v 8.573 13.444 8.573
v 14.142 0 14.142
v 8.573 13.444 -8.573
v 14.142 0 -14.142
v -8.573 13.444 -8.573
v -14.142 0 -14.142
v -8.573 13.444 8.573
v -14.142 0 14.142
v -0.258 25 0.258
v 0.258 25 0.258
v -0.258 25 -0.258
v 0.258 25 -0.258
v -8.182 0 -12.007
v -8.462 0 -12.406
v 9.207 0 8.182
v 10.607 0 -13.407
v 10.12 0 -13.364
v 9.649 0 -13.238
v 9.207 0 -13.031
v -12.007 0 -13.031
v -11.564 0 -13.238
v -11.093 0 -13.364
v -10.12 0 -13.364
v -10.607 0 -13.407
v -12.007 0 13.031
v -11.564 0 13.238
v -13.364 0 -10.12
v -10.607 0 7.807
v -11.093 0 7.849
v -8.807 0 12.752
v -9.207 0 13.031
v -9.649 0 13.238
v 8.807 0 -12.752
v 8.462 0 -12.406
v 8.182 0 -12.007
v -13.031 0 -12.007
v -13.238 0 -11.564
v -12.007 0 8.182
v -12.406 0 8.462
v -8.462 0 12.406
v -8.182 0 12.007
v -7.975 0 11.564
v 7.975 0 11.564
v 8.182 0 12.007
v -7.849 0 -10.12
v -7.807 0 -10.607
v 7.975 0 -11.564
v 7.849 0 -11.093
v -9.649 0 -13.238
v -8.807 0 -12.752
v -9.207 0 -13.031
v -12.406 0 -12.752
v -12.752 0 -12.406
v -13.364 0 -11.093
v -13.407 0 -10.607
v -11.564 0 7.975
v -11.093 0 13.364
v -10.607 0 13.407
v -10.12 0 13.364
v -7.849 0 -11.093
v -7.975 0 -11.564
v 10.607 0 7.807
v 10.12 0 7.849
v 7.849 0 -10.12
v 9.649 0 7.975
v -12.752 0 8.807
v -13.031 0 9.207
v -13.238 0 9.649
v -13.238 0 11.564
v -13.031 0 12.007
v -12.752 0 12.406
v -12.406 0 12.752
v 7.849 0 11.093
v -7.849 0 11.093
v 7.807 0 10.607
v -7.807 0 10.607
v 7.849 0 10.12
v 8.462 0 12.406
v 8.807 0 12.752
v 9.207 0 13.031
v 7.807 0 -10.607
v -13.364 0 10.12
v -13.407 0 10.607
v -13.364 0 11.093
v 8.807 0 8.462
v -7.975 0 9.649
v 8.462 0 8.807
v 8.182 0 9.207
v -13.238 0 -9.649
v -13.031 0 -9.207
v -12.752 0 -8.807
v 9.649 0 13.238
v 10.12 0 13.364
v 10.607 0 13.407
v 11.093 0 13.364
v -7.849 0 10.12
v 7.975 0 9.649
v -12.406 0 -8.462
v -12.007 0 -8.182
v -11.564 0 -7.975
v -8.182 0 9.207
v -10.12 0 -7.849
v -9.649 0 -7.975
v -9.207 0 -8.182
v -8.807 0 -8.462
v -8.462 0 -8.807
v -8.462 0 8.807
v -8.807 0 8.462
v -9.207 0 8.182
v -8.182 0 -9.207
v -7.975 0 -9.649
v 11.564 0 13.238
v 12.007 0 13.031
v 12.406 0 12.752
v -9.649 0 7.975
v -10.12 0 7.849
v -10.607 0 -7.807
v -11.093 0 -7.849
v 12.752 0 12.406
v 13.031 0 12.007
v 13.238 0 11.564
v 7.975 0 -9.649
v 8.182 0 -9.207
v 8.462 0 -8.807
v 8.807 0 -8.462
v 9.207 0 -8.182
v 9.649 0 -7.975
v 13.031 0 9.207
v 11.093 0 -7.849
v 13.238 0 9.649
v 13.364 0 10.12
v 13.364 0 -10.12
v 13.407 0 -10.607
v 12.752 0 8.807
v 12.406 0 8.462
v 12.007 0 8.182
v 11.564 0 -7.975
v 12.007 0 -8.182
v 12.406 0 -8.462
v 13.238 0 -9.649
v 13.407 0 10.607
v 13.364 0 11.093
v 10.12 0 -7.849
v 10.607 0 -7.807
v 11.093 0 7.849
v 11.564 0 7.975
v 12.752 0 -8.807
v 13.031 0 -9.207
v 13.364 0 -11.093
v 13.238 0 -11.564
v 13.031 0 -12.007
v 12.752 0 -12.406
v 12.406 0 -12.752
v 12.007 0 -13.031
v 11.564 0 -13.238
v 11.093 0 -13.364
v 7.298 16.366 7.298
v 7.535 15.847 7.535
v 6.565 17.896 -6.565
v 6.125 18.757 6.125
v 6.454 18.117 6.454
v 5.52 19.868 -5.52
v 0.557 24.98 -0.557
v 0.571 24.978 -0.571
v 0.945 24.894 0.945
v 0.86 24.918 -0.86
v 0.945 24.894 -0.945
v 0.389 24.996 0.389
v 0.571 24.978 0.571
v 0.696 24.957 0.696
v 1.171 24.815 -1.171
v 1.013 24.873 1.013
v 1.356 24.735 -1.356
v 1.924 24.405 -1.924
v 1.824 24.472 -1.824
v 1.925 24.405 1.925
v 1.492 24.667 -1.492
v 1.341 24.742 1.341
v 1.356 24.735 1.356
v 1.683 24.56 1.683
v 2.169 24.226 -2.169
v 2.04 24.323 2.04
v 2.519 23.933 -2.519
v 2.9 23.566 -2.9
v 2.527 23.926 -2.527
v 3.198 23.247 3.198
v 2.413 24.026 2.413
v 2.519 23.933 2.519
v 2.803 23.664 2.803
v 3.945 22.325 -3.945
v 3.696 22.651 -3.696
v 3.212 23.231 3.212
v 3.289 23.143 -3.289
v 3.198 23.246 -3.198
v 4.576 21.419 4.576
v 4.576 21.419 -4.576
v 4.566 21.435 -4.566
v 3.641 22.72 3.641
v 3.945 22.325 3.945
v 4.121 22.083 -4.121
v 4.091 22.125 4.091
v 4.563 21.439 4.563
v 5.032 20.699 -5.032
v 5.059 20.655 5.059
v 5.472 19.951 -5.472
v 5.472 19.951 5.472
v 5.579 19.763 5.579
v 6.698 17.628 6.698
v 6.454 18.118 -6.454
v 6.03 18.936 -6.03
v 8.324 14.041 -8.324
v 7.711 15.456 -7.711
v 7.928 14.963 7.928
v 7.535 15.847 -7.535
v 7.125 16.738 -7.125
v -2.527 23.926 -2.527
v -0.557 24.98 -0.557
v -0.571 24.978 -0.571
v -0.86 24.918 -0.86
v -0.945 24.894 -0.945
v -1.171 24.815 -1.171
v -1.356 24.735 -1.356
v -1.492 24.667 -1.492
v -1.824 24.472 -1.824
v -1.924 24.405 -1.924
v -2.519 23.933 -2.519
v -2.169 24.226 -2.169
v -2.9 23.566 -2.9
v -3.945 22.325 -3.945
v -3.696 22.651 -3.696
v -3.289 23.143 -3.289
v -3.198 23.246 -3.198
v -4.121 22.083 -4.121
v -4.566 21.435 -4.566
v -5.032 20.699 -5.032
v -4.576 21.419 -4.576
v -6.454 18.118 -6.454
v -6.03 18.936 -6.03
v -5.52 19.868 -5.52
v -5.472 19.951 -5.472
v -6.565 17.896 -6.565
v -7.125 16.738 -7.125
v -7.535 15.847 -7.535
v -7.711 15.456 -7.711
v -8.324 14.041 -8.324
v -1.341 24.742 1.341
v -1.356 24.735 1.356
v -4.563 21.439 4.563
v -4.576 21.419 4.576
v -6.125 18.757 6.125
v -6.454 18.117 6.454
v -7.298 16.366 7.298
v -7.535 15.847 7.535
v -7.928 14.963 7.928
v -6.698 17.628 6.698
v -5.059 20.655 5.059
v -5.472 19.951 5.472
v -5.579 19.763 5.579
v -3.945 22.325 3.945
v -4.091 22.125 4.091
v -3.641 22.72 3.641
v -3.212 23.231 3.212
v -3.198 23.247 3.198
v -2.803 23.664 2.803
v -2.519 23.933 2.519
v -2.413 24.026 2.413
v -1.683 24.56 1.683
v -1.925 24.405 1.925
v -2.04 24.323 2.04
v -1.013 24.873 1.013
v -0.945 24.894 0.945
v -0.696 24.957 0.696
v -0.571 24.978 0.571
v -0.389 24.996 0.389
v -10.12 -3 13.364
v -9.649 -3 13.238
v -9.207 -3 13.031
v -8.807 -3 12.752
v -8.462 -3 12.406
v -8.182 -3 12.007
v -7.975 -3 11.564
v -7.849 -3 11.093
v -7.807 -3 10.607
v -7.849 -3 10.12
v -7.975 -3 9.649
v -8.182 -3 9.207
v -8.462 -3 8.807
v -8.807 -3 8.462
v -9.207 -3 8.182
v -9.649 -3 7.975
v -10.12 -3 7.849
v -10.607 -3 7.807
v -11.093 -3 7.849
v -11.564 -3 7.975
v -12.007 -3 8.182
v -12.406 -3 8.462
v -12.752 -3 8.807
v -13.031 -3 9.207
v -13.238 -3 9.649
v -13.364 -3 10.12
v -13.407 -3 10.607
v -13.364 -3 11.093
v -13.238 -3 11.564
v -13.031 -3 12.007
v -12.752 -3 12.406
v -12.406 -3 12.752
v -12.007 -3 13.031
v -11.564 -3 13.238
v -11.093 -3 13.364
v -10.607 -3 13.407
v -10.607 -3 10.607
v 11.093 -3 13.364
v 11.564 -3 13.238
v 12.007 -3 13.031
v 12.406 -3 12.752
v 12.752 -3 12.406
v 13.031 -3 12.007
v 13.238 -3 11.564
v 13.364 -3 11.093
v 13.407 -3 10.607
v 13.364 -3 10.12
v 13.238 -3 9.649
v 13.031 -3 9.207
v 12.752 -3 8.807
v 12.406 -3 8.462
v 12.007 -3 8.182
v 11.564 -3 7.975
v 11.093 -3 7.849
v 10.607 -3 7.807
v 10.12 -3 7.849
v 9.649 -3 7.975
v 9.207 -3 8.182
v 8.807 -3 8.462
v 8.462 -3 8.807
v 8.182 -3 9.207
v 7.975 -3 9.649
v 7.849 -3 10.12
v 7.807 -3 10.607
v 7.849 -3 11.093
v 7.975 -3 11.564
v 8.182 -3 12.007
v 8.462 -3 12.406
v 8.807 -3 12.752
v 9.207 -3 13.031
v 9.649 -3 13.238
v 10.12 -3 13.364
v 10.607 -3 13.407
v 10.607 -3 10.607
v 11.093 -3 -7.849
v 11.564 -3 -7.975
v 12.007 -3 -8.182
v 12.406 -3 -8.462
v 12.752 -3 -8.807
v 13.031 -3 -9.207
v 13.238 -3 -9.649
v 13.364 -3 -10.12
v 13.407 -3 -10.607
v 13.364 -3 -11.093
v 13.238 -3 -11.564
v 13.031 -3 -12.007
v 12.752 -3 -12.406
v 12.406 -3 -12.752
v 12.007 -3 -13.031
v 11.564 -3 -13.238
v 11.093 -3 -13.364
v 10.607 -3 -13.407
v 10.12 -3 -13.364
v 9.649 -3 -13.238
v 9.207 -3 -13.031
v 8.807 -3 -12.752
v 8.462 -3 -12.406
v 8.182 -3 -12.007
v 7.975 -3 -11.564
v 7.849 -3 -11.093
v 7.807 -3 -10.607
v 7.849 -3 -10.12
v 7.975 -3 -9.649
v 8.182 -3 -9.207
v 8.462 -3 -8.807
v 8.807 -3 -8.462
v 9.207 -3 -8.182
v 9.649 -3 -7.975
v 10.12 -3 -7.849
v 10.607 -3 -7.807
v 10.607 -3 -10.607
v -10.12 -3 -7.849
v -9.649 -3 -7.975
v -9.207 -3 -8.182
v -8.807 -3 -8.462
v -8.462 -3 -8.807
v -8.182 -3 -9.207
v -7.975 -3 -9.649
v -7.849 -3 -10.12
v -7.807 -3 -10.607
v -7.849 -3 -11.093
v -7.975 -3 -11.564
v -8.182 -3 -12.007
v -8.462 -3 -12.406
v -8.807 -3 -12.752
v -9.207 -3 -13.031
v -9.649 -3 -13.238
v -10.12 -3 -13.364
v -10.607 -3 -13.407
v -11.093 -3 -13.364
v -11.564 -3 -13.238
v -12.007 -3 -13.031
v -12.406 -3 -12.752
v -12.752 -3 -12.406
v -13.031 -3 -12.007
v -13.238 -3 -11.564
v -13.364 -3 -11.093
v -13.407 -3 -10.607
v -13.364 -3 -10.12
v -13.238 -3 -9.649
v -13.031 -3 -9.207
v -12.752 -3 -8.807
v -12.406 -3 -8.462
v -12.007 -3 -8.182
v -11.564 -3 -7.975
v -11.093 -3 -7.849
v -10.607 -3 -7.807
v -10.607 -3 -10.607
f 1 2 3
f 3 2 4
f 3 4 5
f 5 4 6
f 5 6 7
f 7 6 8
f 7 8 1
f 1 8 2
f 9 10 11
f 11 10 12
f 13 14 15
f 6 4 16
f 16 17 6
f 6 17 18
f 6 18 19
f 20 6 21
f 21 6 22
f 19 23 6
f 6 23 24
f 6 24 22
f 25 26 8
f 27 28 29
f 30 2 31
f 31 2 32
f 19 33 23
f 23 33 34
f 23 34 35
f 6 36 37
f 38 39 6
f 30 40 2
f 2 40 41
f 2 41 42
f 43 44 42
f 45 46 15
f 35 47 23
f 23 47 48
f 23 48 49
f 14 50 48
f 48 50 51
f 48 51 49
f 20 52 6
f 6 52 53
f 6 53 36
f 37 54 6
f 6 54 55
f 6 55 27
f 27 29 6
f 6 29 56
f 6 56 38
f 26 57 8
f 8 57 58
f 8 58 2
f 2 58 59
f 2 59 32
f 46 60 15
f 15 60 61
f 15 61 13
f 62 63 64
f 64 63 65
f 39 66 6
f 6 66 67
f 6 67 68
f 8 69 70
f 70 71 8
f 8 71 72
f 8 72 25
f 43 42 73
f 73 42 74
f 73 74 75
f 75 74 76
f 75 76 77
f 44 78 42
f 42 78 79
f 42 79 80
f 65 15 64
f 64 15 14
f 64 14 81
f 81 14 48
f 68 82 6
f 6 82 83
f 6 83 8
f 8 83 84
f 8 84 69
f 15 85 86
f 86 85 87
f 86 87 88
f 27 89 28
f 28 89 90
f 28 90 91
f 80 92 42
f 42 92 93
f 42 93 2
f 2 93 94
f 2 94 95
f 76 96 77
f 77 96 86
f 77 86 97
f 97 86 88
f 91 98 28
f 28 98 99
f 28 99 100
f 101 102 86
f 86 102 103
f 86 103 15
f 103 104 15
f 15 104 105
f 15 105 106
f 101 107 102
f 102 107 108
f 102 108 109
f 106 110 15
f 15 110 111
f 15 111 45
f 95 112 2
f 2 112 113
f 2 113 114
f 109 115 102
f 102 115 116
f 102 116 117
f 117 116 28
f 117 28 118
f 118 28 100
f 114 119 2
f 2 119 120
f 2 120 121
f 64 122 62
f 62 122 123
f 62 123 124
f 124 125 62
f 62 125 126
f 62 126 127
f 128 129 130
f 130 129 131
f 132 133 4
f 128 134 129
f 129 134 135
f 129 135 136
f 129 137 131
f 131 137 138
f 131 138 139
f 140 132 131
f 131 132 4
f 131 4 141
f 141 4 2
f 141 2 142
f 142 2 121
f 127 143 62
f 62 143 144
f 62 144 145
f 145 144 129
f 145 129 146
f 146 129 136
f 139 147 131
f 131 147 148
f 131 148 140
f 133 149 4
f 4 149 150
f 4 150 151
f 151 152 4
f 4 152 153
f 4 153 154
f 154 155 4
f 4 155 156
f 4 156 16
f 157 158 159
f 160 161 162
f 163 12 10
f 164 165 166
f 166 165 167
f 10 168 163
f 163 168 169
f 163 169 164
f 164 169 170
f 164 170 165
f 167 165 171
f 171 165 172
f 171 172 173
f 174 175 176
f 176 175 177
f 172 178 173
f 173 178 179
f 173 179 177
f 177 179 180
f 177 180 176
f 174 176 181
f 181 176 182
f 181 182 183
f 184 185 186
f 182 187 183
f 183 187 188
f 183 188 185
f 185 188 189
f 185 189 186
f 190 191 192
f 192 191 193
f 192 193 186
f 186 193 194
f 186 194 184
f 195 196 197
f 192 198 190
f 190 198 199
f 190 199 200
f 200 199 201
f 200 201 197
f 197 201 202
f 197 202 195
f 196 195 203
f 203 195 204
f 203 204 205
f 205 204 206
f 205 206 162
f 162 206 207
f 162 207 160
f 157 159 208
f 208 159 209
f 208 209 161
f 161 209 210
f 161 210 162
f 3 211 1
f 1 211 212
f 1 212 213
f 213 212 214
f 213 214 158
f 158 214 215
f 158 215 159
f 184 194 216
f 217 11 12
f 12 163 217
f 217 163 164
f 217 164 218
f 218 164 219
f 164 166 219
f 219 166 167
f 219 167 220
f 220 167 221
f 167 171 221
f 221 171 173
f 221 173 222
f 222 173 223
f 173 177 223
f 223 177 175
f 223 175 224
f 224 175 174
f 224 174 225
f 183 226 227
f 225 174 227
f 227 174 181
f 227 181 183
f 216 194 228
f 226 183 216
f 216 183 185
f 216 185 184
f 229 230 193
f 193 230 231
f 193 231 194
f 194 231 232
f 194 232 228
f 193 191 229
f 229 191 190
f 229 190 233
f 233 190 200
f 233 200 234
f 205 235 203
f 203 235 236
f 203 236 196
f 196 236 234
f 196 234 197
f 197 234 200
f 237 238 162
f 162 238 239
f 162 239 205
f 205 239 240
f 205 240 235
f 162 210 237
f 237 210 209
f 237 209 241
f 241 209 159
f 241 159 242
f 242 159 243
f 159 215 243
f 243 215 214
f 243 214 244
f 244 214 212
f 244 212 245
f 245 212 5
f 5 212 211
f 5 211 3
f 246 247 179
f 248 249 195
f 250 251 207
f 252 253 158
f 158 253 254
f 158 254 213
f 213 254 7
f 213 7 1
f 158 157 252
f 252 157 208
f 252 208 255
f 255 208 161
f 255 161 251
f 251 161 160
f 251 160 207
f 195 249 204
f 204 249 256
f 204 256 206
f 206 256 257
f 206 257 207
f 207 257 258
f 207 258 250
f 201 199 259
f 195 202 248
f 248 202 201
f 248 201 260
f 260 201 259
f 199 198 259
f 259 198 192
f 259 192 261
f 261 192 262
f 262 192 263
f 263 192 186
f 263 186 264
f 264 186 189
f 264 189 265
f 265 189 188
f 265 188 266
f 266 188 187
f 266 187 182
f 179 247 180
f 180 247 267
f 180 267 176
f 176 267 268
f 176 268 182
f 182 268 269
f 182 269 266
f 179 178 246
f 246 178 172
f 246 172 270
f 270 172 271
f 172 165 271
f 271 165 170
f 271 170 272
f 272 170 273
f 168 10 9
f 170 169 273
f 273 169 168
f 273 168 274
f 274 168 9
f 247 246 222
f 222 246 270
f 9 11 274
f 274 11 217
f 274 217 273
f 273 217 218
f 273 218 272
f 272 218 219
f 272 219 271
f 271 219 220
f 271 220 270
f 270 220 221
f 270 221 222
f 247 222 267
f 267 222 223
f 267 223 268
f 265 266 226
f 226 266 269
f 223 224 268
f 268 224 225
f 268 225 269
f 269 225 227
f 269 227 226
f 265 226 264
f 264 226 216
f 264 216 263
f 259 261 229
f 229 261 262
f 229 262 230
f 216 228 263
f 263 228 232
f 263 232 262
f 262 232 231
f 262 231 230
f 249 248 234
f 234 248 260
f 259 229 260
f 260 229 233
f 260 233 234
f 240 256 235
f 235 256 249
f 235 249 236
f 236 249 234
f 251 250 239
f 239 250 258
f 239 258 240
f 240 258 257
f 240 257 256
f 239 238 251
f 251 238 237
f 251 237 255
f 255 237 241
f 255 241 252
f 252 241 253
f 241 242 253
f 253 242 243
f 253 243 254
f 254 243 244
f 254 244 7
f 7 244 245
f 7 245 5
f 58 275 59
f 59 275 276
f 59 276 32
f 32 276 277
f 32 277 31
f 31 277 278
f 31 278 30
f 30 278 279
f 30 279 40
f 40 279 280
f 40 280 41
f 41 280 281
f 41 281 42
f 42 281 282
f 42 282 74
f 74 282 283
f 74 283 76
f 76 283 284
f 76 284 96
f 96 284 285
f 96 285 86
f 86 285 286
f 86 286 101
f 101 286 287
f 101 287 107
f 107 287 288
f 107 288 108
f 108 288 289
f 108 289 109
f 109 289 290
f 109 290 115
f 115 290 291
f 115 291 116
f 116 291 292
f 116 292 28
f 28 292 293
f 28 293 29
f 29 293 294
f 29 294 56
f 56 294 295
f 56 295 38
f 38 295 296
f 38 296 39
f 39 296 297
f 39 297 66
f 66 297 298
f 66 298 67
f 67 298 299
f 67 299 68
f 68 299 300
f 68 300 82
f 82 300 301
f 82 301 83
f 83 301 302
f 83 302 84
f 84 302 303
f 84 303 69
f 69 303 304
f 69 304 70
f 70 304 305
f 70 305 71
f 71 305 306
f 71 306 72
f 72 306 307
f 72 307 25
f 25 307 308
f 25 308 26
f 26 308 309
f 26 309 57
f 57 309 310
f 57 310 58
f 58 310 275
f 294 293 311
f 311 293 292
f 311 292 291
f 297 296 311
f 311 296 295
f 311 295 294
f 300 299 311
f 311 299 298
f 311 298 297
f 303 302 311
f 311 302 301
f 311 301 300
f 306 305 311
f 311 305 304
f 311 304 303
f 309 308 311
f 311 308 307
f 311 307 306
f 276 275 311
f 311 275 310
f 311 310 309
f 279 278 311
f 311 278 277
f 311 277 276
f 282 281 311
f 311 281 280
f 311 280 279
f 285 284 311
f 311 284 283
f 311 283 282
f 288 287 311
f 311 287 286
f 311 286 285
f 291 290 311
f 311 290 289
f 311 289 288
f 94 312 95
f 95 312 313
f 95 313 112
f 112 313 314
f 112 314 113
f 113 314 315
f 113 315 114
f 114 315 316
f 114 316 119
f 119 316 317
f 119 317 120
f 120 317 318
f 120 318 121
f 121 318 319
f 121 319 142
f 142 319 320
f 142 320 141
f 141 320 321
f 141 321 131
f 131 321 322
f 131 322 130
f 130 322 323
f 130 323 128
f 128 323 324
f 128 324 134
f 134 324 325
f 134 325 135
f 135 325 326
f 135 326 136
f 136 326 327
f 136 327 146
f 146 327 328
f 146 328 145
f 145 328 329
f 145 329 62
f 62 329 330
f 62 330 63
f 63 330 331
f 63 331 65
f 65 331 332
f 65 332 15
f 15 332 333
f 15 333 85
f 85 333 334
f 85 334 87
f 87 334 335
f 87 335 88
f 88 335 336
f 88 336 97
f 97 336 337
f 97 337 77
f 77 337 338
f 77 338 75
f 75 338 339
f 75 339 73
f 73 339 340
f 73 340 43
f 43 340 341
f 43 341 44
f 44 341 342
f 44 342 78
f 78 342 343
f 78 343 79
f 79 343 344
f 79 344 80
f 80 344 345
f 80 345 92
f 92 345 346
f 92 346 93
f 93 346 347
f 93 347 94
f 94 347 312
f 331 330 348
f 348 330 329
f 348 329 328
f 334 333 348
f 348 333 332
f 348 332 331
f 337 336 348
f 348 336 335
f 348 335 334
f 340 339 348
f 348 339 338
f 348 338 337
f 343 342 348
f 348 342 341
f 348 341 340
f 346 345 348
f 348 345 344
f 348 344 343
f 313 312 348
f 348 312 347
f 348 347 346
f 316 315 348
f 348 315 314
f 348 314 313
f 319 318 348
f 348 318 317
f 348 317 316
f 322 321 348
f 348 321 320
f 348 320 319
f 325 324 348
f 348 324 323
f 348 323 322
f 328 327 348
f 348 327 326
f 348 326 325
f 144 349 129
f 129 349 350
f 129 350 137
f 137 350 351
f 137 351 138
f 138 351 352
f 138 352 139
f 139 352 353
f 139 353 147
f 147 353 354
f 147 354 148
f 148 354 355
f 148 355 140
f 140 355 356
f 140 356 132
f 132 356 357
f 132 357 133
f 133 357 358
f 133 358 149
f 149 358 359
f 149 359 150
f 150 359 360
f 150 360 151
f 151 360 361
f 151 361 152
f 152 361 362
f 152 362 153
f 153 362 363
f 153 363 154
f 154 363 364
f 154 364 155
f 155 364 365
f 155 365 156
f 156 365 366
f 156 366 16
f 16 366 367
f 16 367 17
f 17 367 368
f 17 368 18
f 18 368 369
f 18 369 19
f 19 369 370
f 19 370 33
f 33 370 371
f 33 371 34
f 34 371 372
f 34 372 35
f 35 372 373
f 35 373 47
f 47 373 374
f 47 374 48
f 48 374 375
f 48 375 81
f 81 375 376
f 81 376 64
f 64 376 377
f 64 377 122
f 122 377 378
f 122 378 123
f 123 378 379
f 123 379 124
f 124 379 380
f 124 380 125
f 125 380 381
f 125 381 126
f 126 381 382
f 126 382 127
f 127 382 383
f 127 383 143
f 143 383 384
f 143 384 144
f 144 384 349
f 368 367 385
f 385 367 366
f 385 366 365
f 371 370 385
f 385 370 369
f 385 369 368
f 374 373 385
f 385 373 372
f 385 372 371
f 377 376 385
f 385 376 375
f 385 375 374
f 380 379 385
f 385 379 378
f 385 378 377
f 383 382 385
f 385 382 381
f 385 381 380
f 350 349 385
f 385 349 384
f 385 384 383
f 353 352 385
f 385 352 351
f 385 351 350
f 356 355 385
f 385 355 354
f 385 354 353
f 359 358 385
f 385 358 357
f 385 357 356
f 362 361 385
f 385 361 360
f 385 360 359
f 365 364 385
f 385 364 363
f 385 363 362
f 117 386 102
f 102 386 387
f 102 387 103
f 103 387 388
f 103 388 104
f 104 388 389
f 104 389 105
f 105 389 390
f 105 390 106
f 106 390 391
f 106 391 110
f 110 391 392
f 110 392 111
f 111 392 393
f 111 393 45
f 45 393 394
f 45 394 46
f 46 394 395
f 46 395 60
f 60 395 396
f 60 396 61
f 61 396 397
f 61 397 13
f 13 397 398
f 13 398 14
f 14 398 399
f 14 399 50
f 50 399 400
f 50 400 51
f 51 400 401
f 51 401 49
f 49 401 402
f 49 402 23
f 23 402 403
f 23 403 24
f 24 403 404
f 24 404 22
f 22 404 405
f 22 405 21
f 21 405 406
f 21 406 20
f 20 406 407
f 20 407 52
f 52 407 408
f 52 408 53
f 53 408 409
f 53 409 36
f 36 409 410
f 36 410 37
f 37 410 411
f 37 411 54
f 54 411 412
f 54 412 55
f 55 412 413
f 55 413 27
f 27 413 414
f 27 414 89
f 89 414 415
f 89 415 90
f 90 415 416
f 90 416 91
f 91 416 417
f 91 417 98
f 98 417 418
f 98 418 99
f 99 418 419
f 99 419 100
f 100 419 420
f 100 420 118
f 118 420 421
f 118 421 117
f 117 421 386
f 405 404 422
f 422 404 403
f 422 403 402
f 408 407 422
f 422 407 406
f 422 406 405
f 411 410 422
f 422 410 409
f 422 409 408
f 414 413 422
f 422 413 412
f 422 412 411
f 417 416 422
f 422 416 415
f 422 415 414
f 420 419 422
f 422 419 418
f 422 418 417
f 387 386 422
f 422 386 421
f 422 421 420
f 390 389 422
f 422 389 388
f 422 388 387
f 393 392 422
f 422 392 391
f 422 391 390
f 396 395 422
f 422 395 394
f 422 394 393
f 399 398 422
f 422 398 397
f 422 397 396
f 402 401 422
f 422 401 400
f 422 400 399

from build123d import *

# Parameters (mm, degrees)
ESQUISSE6_W        = 28.284271248
ESQUISSE6_H        = 28.284271248
BOSS_EXTRU_2_DEPTH = 25
BOSS_EXTRU_2_TAPER = 22.5
ESQUISSE7_R        = 2.8
BOSS_EXTRU_3_DEPTH = 3


with BuildPart() as part:
    # Esquisse6 → Boss.-Extru.2 (new body)
    with BuildSketch(Plane(origin=(0, 0, 0), x_dir=(1, 0, 0), z_dir=(0, 1, 0))):
        Rectangle(ESQUISSE6_W, ESQUISSE6_H)
    extrude(amount=BOSS_EXTRU_2_DEPTH, taper=BOSS_EXTRU_2_TAPER)

    # Congé3
    # a fillet whose section is not a circle: 15, 9 mm, written as the material it takes off along each edge
    with BuildSketch(Plane(origin=(-35.056698922, 25, 3.786796564), x_dir=(0, -0.9238795325112864, 0.38268343236509067), z_dir=(1, 0, 0)), Plane(origin=(-3.786796564, 25, -35.056698922), x_dir=(-0.3826834323650906, -0.9238795325112864, 0), z_dir=(0, 0, 1)), Plane(origin=(35.056698922, 25, -3.786796564), x_dir=(0, -0.9238795325112864, -0.38268343236509056), z_dir=(-1, 0, 0)), Plane(origin=(3.786796564, 25, 35.056698922), x_dir=(0.3826834323650906, -0.9238795325112864, 0), z_dir=(0, 0, -1))) as cong_3_piece_1:
        with BuildLine():
            Bezier((12.507960943, 0), (0, 0), (-1.350232045, 3.259748515), weights=[1, 1, 1])
            Line((-1.350232045, 3.259748515), (0, 0))
            Line((0, 0), (12.507960943, 0))
        make_face()
    extrude(amount=70.113397844, mode=Mode.SUBTRACT)

    # Esquisse7 → Boss.-Extru.3 (add)
    with BuildSketch(Plane.XZ):
        with Locations(Location((-10.606601718, 10.606601718, 0), (0, 0, 90))):
            Circle(ESQUISSE7_R)
        with Locations(Location((10.606601718, 10.606601718, 0), (0, 0, 90))):
            Circle(ESQUISSE7_R)
        with Locations(Location((10.606601718, -10.606601718, 0), (0, 0, 90))):
            Circle(ESQUISSE7_R)
        with Locations(Location((-10.606601718, -10.606601718, 0), (0, 0, 90))):
            Circle(ESQUISSE7_R)
    extrude(amount=BOSS_EXTRU_3_DEPTH)


solid = part.part
